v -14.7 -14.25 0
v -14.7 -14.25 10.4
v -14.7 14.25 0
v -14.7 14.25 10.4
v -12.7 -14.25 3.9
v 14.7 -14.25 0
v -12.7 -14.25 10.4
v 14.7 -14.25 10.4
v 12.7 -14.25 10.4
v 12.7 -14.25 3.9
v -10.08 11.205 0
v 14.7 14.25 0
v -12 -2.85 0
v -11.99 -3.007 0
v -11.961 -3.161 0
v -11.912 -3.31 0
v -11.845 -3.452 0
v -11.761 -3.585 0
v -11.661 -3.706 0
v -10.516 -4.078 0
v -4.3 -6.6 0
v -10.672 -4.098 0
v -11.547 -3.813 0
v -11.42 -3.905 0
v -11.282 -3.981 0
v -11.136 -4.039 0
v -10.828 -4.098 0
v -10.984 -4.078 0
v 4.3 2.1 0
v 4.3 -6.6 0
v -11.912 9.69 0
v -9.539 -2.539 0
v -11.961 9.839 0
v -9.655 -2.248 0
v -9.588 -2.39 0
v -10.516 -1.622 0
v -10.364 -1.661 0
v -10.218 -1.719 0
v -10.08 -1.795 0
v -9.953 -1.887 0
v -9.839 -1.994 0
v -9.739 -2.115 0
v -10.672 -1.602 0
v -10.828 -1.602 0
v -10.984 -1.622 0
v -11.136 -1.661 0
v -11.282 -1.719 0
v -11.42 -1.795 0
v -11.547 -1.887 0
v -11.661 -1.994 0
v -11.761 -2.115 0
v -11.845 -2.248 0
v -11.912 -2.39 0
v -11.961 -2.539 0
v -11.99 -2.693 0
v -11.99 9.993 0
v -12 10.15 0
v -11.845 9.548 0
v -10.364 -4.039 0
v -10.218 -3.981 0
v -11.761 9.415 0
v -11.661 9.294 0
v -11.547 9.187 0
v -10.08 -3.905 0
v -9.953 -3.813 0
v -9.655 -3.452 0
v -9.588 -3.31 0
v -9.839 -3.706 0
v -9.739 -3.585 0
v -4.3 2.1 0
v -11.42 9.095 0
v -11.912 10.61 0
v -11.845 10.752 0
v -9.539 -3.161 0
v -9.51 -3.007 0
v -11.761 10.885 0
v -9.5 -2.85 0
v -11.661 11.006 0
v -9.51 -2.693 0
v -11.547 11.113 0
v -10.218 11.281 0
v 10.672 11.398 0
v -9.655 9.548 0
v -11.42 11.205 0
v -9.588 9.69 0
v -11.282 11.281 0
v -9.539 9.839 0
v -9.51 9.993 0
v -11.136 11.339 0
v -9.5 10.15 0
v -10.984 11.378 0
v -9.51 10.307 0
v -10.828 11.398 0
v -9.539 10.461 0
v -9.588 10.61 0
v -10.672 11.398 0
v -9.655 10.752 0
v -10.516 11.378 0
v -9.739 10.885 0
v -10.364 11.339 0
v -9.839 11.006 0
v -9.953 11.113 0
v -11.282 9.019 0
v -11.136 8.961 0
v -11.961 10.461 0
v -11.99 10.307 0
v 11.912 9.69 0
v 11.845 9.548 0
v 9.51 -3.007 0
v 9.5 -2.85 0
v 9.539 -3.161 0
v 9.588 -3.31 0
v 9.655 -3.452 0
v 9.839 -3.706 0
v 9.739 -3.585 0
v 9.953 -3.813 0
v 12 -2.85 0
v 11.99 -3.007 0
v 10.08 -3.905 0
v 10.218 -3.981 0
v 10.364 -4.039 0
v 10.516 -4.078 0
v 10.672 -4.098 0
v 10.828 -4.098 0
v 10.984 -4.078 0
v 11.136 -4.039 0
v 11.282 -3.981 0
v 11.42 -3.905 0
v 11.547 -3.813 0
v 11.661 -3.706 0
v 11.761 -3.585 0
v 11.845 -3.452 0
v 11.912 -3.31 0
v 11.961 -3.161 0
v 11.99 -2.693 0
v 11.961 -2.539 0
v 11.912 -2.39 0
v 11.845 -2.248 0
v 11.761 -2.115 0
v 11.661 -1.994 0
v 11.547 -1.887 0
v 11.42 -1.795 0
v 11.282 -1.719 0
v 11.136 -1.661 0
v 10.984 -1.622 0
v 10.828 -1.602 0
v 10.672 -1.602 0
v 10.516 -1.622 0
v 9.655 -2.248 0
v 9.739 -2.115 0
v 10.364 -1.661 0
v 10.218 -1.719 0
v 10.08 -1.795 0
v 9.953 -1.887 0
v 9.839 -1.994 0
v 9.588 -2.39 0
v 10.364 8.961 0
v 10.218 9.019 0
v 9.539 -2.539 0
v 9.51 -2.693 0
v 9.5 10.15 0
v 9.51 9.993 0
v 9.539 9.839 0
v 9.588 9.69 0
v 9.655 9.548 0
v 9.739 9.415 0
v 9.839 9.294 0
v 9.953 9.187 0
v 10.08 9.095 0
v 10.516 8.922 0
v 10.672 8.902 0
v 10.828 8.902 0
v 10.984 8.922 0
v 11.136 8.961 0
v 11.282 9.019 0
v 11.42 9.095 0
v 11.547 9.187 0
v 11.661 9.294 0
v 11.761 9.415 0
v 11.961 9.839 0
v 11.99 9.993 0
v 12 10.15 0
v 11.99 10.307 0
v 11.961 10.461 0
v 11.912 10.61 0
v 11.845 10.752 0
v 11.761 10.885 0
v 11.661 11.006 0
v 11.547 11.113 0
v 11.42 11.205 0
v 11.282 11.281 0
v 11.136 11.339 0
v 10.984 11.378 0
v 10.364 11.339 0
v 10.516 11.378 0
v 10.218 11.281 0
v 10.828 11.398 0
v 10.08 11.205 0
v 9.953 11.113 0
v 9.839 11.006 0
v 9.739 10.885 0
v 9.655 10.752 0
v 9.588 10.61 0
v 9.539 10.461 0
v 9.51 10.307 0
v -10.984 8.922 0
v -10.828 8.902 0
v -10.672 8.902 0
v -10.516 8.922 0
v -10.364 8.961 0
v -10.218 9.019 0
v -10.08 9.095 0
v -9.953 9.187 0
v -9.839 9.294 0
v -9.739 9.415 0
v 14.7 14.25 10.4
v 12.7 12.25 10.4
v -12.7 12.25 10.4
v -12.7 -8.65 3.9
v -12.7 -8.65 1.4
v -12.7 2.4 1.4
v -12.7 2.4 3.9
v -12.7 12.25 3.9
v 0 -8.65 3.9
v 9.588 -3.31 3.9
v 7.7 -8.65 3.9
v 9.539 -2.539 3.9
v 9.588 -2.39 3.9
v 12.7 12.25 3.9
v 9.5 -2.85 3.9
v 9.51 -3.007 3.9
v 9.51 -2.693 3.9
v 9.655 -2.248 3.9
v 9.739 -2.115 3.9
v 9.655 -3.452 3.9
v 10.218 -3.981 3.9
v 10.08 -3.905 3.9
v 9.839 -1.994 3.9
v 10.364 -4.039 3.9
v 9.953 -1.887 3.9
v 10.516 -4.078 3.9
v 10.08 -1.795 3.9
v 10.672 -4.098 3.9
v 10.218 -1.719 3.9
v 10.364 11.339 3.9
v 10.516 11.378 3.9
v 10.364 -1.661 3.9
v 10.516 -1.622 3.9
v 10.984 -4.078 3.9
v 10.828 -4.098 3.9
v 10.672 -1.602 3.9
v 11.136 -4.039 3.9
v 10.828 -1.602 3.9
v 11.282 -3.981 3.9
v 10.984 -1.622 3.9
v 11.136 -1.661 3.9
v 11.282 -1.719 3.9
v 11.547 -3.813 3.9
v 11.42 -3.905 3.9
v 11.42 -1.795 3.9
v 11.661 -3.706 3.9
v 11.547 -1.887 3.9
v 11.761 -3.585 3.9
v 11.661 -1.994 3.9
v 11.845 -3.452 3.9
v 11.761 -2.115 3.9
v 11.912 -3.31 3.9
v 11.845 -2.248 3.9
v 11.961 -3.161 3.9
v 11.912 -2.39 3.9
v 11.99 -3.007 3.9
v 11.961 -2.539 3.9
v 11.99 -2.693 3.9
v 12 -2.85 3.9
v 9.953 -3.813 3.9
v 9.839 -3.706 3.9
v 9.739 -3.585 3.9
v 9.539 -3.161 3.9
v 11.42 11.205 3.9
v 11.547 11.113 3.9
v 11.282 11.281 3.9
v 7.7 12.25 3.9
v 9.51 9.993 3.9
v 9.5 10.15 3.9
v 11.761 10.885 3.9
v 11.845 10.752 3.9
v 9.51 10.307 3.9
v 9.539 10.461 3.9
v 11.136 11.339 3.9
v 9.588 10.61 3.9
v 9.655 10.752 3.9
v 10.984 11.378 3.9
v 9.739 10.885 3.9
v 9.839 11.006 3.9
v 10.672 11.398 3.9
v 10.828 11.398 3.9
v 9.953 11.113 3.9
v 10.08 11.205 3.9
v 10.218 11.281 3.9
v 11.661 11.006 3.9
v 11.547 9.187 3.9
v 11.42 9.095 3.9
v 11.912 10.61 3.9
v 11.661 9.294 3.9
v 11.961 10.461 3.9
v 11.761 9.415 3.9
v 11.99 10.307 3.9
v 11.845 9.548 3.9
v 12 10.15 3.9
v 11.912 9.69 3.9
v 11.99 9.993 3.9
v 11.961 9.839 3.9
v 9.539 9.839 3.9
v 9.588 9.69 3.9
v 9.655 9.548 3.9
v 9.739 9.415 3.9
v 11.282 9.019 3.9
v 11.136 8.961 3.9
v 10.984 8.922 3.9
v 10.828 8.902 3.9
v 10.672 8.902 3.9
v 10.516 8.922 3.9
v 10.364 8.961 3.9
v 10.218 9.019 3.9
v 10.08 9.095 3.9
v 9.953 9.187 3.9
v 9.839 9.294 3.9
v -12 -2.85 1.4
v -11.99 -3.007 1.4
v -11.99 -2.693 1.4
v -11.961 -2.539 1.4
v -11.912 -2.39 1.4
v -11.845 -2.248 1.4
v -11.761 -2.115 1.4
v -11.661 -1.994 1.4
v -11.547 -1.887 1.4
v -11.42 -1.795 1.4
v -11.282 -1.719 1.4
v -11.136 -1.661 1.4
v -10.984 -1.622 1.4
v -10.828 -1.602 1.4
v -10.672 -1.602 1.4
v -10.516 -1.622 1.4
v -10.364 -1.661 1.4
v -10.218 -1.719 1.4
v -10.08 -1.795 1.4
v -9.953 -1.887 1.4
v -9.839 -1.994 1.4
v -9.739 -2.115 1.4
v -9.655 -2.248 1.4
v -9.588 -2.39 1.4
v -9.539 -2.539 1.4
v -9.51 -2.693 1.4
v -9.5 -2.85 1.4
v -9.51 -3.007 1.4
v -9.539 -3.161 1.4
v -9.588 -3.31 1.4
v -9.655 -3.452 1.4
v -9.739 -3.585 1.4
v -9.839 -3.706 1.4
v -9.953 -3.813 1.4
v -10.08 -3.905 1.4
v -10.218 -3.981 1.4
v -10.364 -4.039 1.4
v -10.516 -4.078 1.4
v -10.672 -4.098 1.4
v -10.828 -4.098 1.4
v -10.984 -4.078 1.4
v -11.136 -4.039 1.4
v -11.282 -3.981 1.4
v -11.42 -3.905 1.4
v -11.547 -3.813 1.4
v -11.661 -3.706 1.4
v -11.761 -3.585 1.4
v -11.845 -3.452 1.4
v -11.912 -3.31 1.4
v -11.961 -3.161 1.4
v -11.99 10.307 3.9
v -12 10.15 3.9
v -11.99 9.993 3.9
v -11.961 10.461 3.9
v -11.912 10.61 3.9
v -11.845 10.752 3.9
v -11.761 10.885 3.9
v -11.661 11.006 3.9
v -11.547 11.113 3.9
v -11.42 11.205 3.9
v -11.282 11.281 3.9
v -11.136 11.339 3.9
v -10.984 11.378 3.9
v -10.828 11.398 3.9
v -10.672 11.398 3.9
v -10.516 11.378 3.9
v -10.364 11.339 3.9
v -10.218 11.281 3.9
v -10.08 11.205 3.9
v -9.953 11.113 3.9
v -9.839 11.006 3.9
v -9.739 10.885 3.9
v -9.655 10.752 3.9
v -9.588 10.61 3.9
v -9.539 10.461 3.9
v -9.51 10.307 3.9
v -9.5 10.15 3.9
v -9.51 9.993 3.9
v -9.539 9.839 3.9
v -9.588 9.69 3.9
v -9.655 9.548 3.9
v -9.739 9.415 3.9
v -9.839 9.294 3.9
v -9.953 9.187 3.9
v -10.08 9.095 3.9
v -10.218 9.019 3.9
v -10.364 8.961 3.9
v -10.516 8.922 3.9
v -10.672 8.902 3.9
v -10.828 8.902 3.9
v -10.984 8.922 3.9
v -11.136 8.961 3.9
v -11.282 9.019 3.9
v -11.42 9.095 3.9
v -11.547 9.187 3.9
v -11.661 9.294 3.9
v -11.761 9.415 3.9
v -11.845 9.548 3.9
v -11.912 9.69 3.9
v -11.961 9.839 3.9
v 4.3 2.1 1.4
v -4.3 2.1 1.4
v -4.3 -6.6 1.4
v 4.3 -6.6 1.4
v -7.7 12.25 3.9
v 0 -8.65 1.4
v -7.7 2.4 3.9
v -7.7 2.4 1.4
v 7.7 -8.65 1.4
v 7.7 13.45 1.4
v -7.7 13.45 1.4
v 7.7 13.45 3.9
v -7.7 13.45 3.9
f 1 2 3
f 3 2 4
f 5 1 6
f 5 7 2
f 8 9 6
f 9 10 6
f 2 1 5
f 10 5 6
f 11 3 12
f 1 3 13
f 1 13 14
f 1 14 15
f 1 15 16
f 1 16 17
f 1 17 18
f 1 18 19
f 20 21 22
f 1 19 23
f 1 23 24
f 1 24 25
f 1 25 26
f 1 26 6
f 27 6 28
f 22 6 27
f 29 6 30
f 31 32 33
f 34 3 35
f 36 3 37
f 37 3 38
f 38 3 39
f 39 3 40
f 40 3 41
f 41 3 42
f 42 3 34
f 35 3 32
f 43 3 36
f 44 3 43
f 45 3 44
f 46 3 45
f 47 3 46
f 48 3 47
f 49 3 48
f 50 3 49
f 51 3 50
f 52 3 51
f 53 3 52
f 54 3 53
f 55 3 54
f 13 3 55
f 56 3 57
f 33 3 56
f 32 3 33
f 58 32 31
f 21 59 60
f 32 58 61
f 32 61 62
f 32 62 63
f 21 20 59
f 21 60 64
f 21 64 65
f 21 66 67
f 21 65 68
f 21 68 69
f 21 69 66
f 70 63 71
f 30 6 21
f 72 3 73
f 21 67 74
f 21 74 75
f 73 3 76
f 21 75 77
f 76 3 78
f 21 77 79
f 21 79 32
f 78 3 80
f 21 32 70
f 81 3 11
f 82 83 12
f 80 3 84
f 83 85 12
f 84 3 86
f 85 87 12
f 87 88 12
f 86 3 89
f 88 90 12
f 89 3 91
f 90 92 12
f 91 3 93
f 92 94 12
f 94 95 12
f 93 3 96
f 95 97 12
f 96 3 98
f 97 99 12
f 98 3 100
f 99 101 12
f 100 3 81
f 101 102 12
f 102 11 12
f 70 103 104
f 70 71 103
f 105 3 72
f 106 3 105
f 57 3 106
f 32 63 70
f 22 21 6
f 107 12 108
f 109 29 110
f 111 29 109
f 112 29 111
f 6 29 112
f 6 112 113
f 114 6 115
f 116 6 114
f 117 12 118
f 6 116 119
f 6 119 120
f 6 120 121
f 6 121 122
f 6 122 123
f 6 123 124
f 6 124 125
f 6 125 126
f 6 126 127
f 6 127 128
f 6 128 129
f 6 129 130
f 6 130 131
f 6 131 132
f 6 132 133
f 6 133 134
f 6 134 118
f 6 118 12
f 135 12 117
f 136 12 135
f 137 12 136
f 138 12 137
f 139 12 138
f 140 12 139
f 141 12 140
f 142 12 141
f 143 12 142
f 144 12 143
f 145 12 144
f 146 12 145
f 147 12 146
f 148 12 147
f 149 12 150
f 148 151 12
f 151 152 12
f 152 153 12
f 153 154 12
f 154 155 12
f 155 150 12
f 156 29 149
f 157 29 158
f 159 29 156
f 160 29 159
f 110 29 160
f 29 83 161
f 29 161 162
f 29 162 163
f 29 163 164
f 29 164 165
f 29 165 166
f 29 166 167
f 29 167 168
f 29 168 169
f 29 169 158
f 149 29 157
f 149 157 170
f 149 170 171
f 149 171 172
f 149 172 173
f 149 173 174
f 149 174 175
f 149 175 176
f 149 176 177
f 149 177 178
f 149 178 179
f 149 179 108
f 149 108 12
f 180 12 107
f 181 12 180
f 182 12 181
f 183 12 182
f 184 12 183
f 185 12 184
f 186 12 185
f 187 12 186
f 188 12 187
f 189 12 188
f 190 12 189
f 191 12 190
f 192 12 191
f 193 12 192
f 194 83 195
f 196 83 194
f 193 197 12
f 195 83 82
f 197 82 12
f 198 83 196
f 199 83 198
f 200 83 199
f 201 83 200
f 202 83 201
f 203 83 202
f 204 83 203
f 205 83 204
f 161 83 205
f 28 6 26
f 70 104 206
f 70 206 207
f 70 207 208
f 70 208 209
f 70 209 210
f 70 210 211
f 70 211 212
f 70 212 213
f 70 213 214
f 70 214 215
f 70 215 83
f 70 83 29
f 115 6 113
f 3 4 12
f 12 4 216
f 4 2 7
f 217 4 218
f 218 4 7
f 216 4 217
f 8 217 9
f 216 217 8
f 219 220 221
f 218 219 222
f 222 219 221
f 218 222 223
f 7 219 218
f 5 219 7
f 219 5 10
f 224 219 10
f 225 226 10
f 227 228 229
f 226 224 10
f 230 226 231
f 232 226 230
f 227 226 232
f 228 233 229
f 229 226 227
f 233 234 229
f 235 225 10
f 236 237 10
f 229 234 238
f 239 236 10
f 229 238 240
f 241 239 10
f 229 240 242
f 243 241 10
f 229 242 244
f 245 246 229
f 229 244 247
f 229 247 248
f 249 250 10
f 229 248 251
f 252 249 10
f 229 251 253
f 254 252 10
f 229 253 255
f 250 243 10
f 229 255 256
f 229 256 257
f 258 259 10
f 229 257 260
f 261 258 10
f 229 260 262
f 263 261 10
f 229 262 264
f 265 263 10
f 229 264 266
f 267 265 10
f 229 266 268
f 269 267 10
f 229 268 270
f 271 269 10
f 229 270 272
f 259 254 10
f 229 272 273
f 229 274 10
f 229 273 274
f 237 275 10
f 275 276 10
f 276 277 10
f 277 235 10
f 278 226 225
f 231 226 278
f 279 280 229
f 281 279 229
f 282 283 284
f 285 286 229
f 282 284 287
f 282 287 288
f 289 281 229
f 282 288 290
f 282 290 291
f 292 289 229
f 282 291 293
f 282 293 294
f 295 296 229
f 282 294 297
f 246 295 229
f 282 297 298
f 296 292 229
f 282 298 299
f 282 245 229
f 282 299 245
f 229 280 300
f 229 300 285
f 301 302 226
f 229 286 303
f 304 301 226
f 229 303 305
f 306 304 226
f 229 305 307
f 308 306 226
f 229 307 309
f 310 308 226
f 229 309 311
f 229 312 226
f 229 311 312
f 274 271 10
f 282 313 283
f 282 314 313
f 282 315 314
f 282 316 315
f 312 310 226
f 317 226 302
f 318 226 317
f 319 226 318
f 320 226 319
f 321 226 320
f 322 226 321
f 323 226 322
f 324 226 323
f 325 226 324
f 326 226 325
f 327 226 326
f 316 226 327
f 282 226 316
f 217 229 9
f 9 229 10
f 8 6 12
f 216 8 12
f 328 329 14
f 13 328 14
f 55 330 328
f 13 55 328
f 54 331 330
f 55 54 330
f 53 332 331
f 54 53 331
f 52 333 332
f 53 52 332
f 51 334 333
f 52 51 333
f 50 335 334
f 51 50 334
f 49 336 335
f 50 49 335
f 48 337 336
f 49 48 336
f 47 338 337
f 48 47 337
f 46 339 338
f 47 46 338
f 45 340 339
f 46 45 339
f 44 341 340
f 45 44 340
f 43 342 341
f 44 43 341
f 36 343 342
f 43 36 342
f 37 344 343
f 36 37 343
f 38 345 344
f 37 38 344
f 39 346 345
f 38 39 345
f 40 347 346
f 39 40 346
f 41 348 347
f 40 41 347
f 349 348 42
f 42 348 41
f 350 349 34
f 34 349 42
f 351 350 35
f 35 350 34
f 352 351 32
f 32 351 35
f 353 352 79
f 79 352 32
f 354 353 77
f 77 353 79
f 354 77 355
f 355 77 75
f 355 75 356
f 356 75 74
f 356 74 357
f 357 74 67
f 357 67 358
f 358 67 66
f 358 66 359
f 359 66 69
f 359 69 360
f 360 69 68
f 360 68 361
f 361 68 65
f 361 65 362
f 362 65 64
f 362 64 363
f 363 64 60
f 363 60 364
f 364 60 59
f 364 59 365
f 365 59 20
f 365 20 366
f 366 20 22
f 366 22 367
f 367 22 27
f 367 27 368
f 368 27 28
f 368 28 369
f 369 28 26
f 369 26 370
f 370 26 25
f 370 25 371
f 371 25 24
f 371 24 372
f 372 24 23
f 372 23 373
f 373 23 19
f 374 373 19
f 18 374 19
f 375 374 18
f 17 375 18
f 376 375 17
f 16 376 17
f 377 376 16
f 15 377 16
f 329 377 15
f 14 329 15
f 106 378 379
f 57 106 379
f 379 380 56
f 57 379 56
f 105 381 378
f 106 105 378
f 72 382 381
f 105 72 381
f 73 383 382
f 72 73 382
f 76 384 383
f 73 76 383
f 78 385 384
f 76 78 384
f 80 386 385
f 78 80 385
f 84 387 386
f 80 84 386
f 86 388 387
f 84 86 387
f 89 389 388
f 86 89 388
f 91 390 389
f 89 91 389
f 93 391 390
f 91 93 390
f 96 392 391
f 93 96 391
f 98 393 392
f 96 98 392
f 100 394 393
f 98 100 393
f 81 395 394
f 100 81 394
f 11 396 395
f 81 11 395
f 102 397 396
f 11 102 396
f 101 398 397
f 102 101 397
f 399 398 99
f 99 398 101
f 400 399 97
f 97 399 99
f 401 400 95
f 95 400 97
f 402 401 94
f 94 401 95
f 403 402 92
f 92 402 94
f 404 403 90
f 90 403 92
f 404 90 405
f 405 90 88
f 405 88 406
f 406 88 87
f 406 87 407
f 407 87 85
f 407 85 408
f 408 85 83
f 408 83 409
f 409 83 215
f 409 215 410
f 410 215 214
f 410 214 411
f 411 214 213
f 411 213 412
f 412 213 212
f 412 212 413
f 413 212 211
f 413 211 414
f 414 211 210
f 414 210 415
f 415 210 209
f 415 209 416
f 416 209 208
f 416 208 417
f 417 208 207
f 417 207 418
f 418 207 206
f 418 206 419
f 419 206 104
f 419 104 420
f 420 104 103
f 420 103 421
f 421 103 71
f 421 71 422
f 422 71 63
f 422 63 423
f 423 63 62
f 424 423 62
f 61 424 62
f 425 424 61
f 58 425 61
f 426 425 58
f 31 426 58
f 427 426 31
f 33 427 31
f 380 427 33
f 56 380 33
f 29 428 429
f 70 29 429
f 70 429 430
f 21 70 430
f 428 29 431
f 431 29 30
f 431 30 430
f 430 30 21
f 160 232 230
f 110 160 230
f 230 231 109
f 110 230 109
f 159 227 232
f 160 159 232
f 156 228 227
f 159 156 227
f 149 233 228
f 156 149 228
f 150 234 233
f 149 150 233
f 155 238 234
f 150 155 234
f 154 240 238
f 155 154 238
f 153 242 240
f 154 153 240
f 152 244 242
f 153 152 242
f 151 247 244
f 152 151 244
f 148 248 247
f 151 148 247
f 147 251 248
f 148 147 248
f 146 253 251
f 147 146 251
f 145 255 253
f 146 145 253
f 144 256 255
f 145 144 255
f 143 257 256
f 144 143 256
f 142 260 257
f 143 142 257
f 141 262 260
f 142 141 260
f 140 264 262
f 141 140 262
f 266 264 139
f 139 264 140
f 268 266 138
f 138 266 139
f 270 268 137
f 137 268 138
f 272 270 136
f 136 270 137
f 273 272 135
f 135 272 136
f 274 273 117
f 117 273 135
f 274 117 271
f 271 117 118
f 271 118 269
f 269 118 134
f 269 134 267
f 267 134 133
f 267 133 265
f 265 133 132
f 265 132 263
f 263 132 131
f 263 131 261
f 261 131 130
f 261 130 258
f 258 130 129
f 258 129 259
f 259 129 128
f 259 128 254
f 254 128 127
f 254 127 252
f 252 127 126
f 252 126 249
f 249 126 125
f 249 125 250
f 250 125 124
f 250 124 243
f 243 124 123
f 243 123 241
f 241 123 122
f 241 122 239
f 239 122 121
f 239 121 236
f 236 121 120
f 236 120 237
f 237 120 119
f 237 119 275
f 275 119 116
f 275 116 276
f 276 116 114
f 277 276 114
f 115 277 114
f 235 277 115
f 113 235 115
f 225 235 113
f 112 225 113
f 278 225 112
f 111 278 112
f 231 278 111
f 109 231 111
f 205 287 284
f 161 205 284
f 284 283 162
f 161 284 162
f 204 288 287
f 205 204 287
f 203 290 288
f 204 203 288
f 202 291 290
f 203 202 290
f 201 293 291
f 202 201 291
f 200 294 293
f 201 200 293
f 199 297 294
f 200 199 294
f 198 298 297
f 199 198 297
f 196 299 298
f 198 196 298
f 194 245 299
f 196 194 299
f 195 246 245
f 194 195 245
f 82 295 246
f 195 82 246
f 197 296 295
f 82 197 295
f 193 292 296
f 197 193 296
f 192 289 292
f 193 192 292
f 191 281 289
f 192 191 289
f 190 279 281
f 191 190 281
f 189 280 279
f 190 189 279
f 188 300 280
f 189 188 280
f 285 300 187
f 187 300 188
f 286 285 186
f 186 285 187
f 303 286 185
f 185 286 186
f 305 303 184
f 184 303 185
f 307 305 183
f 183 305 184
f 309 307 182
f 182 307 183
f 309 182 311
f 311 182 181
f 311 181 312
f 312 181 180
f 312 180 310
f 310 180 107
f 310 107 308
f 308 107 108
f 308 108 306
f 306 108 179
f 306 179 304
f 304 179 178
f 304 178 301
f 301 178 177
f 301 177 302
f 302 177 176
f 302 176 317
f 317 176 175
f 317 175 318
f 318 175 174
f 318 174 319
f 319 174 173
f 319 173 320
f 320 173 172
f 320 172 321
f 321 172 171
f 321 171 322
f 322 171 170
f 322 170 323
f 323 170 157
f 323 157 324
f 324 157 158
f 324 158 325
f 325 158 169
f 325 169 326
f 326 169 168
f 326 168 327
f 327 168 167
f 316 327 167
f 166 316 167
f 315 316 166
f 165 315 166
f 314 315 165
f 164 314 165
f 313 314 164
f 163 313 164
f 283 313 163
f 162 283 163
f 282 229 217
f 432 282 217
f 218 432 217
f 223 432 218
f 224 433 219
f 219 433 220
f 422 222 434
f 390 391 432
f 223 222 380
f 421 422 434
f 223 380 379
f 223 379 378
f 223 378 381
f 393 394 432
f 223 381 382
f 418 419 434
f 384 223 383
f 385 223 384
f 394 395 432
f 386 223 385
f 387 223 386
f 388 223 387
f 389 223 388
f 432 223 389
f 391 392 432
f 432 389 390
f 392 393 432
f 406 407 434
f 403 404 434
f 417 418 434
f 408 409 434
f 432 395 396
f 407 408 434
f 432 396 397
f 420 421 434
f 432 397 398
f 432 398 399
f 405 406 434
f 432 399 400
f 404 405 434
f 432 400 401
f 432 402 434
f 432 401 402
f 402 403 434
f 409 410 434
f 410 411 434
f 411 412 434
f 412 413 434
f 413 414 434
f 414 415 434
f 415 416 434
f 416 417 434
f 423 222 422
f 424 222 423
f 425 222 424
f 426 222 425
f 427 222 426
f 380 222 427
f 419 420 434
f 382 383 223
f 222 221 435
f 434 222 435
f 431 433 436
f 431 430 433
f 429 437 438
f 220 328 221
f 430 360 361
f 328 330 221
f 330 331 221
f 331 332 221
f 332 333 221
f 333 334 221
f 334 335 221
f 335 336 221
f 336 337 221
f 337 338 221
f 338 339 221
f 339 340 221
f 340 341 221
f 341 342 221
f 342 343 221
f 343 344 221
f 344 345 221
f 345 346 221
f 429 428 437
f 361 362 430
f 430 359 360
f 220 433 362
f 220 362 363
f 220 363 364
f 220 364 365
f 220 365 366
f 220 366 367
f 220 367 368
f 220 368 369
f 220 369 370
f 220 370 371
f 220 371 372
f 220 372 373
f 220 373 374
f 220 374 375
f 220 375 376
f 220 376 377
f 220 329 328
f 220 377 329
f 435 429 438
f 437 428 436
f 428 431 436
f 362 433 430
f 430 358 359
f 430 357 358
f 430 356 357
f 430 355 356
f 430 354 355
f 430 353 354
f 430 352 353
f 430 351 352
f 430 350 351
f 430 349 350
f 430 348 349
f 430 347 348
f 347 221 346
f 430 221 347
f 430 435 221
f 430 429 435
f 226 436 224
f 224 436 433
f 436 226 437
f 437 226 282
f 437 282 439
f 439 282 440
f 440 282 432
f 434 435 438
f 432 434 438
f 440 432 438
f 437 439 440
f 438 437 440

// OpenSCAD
// TODO: refactor

rscrew = 2.5 / 2;
dhexmin = 4 + 0.2;
dhexmax = 4.47 + 0.5;
hhex = 1.27 + 0.4;
h = hhex + 2;
huge = 100;

wcam = 25 + 0.4;
dcam = 24 + 0.5;

hbase = 1.4;
hbase2 = 2 + 0.5;
hwalls = 6.5;
htotal = hbase + hbase2 + hwalls;
wrails = 2;
toprail = 2.4;
padding = 4;
huge = 1000;

xhole = wcam/2 - 1.75 - 0.2;


difference() {
	translate([0, 0, htotal/2]) {
		cube([wcam + padding, dcam + padding, htotal], center=true);
	}
	
	union() {

		// screws
		for (x = [-xhole, xhole]) {
			for (dy = [0, -13]) {
				translate([x, xhole - 0.6 + dy, 0]) {
					cylinder(r=rscrew, h=huge, $fn=50, center=true);
				}
			}
		}

		// cam hole
		translate([0, -2.25, 0]) {
			cube([8 + 0.6, 13 - 0.6 - 2 - 0.2 - 1.5, huge], center=true);
		}

		translate([0, toprail, htotal - hwalls - hbase2/2]) {
			difference() {
				union() {
					cube([wcam - wrails, dcam - toprail, hbase2], center=true);
					translate([-wcam/4, toprail/2 - 2, 0]) {
						cube([wcam/2, dcam - 4, hbase2], center=true);
					}
				}
				union() {
					translate([wcam/2 - 5/2, 0, 0]) {
						cube([5, huge, huge], center=true);
					}
					translate([-(wcam/2 - 5/2), dcam/2, 0]) {
						cube([5, dcam, huge], center=true);
					}
					translate([0, dcam/2, 0]) {
						cube([huge, huge, huge]);
					}
				}
			}
		}

		for (dy = [0, -5]) {
			translate([0, dy, htotal - hwalls/2]) {
				cube([wcam, dcam, hwalls], center=true);
			}
		}
	}
}
